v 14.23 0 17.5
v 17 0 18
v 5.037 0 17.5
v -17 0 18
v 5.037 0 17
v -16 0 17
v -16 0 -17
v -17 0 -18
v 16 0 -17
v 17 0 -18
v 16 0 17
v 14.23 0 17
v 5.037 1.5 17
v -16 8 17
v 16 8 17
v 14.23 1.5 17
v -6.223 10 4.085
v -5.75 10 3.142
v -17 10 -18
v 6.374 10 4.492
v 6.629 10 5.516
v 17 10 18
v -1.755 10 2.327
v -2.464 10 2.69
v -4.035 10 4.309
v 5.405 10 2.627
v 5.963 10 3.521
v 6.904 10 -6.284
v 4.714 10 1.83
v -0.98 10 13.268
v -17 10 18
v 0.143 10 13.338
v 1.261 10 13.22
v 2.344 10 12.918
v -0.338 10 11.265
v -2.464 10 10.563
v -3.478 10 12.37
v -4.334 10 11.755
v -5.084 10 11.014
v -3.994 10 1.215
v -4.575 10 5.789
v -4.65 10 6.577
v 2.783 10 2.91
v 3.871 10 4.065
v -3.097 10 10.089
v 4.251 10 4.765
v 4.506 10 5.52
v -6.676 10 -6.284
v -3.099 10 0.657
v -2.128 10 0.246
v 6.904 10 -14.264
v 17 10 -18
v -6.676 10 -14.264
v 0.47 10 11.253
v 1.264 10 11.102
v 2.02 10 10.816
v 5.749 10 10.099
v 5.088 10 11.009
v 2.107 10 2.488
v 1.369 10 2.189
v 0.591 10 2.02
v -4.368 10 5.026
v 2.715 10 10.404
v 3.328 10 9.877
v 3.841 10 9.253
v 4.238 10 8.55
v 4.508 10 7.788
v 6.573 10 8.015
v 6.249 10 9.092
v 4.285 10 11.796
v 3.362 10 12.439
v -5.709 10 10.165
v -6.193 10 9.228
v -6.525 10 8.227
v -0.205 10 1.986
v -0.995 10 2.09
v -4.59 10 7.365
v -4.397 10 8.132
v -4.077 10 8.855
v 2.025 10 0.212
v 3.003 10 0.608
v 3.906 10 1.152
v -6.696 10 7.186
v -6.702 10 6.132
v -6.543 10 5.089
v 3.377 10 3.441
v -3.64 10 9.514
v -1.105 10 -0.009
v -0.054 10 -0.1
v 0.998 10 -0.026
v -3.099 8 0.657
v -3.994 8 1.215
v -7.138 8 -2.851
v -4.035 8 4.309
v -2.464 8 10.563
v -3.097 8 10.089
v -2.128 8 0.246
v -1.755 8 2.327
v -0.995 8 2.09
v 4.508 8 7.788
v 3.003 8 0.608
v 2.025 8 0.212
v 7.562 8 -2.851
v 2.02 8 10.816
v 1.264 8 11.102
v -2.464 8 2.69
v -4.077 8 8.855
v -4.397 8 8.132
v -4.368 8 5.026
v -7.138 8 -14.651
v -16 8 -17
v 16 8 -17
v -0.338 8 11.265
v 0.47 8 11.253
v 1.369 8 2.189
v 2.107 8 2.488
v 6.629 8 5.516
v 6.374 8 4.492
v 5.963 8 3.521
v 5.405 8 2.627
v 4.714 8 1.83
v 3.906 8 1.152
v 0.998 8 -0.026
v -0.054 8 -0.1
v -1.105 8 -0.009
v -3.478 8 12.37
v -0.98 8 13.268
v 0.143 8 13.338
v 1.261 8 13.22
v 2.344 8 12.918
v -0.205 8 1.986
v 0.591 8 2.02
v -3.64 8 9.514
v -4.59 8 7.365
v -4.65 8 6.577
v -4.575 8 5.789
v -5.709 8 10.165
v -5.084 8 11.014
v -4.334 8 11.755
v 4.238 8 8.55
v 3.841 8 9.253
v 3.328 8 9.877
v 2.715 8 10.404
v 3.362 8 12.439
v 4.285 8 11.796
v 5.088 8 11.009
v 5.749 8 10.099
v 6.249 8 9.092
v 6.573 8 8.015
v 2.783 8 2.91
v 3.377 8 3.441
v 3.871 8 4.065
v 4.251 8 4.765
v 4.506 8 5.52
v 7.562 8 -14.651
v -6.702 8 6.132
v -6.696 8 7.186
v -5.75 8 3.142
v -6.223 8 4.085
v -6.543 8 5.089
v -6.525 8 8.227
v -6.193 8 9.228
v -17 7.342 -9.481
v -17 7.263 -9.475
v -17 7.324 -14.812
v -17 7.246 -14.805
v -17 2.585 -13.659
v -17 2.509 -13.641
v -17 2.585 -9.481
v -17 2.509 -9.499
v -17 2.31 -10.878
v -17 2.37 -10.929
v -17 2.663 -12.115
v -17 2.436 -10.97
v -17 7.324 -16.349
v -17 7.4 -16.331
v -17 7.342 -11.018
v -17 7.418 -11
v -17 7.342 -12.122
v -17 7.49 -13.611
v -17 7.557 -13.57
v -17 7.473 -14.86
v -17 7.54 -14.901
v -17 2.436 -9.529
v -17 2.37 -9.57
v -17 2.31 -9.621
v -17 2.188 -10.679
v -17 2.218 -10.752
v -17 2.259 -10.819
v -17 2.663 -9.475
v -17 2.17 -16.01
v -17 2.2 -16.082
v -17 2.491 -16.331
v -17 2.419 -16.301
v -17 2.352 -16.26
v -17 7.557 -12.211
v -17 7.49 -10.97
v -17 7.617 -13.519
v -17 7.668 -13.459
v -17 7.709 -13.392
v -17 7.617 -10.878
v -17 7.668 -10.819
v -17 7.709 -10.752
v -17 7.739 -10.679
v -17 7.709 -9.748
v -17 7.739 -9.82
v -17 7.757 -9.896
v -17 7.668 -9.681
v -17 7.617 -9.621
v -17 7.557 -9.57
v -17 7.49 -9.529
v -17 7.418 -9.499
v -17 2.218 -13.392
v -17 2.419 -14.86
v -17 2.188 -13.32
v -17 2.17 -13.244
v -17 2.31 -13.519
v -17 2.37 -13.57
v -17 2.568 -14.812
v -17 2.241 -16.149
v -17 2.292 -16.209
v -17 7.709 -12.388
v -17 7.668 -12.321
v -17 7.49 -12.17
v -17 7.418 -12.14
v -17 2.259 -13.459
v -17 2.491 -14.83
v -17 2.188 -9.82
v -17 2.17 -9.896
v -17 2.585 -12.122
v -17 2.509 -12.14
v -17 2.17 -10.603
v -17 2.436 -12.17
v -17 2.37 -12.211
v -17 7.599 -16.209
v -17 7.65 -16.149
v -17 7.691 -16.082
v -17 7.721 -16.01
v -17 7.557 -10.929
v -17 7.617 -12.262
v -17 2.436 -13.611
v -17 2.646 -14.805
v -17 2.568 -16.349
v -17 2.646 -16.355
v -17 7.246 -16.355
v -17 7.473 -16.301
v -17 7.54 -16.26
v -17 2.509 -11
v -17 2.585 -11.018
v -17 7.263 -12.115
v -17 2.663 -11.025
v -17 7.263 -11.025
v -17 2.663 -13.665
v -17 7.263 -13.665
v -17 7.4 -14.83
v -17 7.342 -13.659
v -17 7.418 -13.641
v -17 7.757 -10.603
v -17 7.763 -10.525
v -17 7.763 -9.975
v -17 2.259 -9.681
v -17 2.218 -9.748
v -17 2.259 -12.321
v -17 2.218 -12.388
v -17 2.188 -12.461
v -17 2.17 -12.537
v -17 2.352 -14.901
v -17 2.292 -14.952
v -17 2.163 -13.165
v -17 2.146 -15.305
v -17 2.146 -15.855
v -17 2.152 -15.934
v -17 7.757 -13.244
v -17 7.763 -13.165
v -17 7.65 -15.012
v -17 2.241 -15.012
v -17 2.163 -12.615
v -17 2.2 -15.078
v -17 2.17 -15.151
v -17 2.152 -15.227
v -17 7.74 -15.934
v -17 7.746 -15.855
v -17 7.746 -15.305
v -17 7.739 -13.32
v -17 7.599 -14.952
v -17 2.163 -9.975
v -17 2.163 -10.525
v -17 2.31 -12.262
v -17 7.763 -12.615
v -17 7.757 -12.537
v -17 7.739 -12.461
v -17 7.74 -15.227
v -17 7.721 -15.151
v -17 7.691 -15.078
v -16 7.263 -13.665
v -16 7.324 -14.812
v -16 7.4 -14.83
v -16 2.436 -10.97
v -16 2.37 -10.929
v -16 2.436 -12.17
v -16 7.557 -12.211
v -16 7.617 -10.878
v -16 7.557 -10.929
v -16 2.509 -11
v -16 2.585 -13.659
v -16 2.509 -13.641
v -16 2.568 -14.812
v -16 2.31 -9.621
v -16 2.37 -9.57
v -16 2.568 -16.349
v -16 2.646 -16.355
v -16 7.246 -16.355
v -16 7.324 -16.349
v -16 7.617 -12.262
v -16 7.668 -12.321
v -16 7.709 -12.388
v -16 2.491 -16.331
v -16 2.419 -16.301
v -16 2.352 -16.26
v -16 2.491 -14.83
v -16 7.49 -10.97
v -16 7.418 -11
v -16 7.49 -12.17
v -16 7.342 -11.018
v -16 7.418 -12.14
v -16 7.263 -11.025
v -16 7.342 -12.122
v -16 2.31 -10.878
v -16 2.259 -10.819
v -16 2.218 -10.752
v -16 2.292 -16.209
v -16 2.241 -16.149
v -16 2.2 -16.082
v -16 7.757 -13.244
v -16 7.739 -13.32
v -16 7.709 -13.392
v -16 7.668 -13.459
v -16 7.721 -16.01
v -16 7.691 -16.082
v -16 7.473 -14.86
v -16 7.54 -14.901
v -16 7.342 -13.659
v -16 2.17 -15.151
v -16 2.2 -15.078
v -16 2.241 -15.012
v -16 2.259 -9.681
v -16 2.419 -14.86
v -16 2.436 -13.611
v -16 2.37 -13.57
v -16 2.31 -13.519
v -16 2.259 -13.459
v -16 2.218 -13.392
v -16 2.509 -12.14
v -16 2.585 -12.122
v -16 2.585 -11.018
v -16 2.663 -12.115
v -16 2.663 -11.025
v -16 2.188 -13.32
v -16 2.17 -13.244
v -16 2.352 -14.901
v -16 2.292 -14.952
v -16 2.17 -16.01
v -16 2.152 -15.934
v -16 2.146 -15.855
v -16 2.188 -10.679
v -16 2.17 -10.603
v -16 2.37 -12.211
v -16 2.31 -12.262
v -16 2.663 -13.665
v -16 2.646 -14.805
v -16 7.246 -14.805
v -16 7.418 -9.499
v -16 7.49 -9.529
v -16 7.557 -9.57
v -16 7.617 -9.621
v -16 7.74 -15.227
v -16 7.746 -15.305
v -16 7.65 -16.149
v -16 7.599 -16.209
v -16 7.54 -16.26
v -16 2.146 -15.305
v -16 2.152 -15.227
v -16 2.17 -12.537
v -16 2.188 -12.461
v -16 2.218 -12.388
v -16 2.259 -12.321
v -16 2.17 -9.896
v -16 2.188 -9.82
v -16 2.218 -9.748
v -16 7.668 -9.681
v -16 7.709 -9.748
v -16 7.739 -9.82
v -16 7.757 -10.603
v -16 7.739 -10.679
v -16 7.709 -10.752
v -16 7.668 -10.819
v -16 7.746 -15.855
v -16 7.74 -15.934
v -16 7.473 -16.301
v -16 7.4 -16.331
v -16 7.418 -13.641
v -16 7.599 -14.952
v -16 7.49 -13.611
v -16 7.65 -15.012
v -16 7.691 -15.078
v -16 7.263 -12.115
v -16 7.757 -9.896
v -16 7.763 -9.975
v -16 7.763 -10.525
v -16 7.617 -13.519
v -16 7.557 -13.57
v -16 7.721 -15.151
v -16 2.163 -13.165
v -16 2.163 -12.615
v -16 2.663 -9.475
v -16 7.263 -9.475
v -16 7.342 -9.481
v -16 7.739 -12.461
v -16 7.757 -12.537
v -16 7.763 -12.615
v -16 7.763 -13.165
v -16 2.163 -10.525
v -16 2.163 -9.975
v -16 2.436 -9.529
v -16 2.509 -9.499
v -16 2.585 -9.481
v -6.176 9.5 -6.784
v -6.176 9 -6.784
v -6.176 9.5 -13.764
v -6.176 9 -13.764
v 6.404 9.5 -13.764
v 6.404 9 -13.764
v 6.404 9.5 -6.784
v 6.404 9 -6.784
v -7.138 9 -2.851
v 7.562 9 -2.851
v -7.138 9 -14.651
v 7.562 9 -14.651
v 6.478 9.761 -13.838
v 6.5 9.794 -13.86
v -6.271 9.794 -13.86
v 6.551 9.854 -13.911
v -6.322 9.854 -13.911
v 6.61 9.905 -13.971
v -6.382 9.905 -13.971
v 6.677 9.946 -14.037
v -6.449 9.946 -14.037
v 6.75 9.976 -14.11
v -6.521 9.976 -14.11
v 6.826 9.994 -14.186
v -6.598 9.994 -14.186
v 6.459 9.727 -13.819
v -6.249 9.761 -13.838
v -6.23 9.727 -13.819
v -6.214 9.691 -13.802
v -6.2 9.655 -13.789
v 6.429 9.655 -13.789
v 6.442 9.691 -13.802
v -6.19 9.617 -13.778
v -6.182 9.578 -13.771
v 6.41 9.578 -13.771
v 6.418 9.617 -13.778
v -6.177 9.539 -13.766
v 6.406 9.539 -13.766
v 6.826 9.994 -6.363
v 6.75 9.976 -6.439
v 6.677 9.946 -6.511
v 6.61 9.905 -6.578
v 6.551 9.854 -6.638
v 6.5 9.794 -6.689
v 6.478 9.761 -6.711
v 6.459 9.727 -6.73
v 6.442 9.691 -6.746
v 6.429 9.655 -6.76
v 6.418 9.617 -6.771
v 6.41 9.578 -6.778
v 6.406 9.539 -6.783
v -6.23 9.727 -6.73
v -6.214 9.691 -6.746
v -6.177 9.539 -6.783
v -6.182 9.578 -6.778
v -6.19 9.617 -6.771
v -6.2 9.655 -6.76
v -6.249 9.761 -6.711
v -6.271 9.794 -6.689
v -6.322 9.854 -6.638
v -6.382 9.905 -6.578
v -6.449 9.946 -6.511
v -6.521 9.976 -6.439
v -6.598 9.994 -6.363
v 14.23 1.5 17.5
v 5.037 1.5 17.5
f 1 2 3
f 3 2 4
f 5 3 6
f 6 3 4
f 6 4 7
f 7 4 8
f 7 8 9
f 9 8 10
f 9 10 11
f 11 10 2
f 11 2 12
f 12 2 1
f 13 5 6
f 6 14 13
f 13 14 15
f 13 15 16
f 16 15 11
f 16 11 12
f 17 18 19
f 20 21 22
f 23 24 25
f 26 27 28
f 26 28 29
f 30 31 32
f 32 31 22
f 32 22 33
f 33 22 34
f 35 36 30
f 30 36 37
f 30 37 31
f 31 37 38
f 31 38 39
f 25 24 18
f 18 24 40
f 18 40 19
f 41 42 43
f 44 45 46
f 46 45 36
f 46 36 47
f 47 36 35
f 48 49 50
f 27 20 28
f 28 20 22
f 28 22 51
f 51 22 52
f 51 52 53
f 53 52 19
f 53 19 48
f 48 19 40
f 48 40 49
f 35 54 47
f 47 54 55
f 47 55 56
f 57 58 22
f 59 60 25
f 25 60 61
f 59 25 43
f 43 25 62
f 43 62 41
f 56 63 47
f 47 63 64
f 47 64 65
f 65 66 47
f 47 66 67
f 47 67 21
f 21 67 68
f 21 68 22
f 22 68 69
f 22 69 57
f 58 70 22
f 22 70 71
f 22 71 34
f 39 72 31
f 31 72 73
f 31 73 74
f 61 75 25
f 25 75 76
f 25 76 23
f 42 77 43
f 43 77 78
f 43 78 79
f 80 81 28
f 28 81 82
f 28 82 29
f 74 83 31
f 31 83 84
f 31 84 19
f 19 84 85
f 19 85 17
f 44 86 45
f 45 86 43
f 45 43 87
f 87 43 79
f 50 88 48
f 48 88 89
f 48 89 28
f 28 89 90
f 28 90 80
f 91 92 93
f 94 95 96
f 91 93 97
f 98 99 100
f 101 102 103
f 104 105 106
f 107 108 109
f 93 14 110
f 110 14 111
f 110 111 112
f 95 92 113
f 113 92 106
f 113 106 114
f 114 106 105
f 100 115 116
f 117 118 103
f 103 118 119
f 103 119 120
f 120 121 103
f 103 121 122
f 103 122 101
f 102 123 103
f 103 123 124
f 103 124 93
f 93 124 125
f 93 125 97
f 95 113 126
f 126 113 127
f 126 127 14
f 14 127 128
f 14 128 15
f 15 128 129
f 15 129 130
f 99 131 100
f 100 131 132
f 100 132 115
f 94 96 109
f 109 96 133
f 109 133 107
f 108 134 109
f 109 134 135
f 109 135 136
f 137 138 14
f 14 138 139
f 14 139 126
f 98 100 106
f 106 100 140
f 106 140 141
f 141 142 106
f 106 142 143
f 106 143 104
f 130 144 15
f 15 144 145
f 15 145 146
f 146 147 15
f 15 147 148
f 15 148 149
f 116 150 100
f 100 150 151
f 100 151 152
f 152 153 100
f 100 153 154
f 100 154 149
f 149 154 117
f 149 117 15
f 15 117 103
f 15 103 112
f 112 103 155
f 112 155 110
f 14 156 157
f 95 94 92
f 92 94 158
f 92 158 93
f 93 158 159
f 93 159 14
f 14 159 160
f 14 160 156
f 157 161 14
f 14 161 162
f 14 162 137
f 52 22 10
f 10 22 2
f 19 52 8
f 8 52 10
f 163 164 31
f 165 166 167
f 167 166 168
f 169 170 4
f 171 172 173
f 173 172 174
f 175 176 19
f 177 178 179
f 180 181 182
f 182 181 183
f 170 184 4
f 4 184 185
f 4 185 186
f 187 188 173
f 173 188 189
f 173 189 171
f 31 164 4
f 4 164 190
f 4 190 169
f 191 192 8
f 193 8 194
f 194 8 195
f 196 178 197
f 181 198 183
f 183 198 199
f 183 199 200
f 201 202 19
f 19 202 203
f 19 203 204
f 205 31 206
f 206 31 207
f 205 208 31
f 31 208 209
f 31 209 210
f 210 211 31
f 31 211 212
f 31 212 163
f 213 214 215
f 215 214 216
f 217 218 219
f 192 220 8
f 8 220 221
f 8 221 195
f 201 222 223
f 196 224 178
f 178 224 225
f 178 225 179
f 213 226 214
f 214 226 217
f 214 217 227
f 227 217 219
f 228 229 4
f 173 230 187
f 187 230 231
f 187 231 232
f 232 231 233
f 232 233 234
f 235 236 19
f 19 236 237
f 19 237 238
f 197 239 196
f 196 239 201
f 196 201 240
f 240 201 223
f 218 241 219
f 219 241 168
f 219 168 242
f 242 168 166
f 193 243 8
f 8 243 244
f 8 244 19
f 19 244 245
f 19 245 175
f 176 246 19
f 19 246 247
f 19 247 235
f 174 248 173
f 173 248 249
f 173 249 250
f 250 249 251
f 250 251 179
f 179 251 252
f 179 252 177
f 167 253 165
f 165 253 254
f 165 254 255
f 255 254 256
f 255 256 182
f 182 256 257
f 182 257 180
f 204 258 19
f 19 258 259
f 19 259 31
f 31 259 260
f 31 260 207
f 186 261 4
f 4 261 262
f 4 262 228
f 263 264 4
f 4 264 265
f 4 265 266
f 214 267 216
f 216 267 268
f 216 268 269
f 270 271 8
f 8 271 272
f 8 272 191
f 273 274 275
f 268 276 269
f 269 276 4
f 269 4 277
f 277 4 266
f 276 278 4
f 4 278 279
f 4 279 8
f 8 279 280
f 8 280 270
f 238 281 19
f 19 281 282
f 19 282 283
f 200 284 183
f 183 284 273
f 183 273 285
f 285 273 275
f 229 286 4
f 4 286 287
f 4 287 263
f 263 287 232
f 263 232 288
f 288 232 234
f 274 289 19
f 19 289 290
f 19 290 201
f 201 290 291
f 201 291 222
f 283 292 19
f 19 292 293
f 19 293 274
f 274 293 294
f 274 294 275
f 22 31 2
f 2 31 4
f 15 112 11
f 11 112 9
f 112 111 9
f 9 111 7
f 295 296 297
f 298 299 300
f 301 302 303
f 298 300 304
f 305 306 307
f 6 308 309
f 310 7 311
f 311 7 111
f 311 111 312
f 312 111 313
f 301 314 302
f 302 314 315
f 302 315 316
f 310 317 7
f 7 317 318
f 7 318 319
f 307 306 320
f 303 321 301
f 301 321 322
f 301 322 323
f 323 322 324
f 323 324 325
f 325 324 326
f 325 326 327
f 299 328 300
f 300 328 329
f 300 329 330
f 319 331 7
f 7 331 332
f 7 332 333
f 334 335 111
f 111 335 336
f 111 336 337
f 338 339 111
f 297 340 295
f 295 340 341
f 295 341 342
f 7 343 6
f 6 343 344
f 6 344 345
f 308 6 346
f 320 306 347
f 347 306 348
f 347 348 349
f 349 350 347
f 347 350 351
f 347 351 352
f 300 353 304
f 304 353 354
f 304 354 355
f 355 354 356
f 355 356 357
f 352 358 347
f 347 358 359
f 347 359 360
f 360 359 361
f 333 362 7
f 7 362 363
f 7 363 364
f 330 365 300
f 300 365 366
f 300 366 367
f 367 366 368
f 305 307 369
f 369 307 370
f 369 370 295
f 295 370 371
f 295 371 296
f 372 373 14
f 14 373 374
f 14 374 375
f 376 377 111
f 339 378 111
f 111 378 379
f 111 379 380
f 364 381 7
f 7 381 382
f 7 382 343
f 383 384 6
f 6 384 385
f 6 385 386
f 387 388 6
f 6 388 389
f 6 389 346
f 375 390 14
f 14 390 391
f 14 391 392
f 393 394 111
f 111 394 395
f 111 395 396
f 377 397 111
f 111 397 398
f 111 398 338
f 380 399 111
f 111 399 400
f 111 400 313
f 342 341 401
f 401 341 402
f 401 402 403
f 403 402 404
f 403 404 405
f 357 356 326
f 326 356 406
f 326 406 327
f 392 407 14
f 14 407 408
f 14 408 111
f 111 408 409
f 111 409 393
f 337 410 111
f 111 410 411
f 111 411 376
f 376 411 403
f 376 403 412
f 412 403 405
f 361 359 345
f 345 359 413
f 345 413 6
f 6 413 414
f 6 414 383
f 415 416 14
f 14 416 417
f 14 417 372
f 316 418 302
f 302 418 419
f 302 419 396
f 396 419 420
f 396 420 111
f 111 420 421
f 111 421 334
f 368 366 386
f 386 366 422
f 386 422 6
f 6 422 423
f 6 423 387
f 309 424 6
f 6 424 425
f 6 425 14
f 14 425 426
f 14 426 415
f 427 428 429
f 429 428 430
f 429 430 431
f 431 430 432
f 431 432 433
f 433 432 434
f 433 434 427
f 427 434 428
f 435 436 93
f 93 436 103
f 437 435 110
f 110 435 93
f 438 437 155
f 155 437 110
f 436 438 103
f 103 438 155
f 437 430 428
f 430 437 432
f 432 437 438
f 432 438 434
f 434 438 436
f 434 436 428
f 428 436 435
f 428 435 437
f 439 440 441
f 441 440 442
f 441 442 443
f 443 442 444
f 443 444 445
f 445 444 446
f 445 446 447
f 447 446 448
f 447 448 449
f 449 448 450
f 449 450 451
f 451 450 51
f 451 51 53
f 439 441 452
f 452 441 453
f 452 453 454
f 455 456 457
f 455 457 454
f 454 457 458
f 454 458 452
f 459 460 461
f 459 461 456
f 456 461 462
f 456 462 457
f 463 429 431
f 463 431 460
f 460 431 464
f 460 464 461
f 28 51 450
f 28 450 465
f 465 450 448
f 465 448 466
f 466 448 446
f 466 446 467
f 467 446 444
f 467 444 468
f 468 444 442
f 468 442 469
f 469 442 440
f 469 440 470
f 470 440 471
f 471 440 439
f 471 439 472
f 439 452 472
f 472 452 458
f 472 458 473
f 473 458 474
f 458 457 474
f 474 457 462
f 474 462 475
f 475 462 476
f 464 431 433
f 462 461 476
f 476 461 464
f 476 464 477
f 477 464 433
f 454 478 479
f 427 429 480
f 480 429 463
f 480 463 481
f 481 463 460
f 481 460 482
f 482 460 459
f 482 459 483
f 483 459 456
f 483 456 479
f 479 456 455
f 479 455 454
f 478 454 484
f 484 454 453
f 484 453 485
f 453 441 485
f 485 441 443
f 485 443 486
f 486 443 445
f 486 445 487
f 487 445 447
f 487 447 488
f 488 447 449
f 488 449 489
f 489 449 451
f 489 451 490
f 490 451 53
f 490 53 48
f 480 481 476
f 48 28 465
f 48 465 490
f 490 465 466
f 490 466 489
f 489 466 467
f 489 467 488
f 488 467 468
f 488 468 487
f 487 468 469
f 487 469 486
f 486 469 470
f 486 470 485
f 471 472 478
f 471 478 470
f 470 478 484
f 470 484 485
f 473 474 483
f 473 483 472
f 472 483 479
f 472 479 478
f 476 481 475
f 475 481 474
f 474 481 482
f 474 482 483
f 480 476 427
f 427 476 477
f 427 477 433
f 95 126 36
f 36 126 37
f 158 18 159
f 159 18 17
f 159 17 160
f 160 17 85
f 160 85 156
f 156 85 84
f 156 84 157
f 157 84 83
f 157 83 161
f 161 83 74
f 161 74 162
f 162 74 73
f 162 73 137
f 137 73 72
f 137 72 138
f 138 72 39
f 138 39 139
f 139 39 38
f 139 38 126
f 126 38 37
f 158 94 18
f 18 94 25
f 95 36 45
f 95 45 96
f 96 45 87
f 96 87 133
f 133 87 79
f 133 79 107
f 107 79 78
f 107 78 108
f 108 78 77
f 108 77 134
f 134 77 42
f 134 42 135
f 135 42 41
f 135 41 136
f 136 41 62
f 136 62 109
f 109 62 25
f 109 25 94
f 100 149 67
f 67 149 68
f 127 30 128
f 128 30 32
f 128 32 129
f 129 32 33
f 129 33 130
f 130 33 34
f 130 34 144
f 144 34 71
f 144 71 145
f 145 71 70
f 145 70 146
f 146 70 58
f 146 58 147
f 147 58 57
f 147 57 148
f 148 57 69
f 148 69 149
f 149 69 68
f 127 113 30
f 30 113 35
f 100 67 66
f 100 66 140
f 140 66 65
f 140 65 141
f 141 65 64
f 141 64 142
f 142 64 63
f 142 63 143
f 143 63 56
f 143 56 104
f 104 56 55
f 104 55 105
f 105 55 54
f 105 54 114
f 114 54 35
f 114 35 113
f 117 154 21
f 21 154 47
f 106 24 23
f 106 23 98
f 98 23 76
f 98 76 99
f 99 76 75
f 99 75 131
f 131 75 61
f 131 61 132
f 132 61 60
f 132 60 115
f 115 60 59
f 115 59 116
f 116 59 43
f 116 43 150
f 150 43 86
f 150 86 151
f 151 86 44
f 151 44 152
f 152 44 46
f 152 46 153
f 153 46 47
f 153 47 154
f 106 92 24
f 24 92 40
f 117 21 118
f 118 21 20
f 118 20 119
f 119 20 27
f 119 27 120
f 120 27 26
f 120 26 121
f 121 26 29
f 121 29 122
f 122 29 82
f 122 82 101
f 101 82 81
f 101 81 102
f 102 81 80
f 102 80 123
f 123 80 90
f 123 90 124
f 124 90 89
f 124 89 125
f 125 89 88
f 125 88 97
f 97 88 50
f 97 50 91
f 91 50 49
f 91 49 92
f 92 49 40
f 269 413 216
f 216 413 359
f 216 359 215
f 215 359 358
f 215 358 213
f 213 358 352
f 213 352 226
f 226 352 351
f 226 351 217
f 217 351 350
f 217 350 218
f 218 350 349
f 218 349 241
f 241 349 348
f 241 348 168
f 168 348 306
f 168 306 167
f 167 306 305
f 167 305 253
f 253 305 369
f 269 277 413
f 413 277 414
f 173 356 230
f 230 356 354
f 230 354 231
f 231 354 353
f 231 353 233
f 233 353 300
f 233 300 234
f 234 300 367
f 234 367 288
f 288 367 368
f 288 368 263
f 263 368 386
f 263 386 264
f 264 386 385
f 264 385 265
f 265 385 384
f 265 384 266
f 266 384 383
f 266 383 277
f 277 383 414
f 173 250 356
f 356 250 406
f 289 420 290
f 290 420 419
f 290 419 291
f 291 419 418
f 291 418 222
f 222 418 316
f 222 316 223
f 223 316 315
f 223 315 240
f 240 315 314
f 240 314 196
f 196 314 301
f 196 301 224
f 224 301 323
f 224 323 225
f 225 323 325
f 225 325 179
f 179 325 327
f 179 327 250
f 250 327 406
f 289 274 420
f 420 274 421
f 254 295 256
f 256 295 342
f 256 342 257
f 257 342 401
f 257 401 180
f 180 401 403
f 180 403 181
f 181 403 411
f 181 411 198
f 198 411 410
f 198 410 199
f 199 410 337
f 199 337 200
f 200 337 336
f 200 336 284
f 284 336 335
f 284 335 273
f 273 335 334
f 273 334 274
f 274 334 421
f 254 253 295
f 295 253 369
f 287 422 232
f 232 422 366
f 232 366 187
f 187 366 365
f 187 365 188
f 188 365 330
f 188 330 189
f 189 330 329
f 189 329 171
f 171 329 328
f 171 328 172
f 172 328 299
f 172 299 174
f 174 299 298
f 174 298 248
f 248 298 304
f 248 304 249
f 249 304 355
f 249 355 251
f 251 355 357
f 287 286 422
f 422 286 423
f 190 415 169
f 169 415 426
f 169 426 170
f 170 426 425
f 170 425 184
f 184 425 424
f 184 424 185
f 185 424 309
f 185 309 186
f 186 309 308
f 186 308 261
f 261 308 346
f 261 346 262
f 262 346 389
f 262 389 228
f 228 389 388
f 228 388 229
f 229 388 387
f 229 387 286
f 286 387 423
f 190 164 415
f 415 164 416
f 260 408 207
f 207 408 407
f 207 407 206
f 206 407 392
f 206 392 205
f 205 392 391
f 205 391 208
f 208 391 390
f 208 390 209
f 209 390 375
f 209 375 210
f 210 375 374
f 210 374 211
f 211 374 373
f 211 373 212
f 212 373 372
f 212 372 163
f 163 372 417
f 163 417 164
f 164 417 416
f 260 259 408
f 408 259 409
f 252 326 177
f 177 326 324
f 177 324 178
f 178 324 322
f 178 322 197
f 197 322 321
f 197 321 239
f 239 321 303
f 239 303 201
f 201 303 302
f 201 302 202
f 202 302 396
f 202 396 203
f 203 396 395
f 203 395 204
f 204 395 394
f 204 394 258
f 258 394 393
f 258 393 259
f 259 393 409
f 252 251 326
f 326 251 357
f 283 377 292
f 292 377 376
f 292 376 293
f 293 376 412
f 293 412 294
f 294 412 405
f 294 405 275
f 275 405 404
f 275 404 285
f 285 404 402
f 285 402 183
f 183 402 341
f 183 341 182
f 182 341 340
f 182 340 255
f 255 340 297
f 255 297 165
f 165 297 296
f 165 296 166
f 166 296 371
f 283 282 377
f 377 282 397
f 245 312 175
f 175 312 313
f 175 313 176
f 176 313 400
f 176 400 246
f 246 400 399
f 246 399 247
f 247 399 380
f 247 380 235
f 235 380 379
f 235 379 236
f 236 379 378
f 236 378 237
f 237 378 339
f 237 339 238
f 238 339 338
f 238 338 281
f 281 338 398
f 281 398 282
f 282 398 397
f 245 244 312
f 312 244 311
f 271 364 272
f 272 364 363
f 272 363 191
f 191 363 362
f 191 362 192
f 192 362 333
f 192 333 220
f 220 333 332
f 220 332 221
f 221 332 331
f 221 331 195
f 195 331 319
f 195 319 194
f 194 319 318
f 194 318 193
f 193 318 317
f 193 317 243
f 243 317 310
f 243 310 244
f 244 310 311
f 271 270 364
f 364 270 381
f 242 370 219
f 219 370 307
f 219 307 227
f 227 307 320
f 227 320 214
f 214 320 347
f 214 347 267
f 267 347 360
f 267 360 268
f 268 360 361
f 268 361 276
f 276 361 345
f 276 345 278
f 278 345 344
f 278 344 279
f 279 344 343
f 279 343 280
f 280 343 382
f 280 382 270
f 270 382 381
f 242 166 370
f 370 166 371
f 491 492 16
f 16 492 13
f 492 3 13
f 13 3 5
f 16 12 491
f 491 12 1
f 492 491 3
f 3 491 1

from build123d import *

# Parameters (mm, degrees)
SKETCH_1_W                 = 34
SKETCH_1_H                 = 36
EXTRUDE_1_DEPTH            = 10
SHELL_1_T                  = -1
SHELL_1_THICKNESS_2_FACE_W = 34
SHELL_1_THICKNESS_2_FACE_H = 32
SHELL_1_THICKNESS_2_DEPTH  = 1
CUT_EXTRUDE_START          = 8
SKETCH_2_W                 = 12.58
SKETCH_2_H                 = 6.98
CUT_EXTRUDE_1_DEPTH        = 5.0005
SKETCH_6_W                 = 14.7
SKETCH_6_H                 = 11.8
CUT_EXTRUDE_2_DEPTH        = 1
FILLET_2_R                 = 0.5
CUT_EXTRUDE_START_2        = 10
CUT_EXTRUDE_3_DEPTH        = 2
CUT_EXTRUDE_START_3        = -16
CUT_EXTRUDE_4_DEPTH        = 1
CUT_EXTRUDE_START_4        = 17
SKETCH_13_W                = 9.193413451
SKETCH_13_H                = 1.5
CUT_EXTRUDE_5_DEPTH        = 0.5


with BuildPart() as part:
    # 草图1 → 凸台-拉伸1 (new body)
    with BuildSketch(Plane(origin=(0, 0, 0), x_dir=(1, 0, 0), z_dir=(0, 1, 0))):
        Rectangle(SKETCH_1_W, SKETCH_1_H)
    extrude(amount=EXTRUDE_1_DEPTH)

    # 抽壳1
    shell_1_openings = [part.faces().sort_by_distance(p)[0] for p in [
        (0, 0, 0),
    ]]
    offset(amount=SHELL_1_T, openings=shell_1_openings, kind=Kind.INTERSECTION)

    # 抽壳1 thickness 2 face (on inner face of the shell) → 抽壳1 thickness 2 (add)
    with BuildSketch(Plane.ZX.offset(9)):
        Rectangle(SHELL_1_THICKNESS_2_FACE_W, SHELL_1_THICKNESS_2_FACE_H)
    extrude(amount=-SHELL_1_THICKNESS_2_DEPTH)

    # 草图2 → 切除-拉伸1 (cut, symmetric)
    with BuildSketch(Plane(origin=(0, 0, 0), x_dir=(1, 0, 0), z_dir=(0, 1, 0)).offset(CUT_EXTRUDE_START)):
        with Locations((0.114253814, 10.274424553)):
            Rectangle(SKETCH_2_W, SKETCH_2_H)
    extrude(amount=CUT_EXTRUDE_1_DEPTH, both=True, mode=Mode.SUBTRACT)

    # 草图6 → 切除-拉伸2 (cut, symmetric)
    with BuildSketch(Plane(origin=(0, 0, 0), x_dir=(1, 0, 0), z_dir=(0, 1, 0)).offset(CUT_EXTRUDE_START)):
        with Locations((0.212081247, 8.751285152)):
            Rectangle(SKETCH_6_W, SKETCH_6_H)
    extrude(amount=CUT_EXTRUDE_2_DEPTH, both=True, mode=Mode.SUBTRACT)

    # 圆角2
    fillet_2_edges = [part.edges().sort_by_distance(p)[0] for p in [
        (6.404253814, 10, -10.274424553),
        (0.114253814, 10, -6.784424553),
        (-6.175746186, 10, -10.274424553),
        (0.114253814, 10, -13.764424553),
    ]]
    fillet(fillet_2_edges, radius=FILLET_2_R)

    # 草图10 → 切除-拉伸3 (cut)
    with BuildSketch(Plane(origin=(0, 0, 0), x_dir=(1, 0, 0), z_dir=(0, 1, 0)).offset(CUT_EXTRUDE_START_2)):
        with BuildLine():
            Line((-3.993743906, -1.215281594), (-2.463768403, -2.690446502))
            ThreePointArc((-2.463768403, -2.690446502), (1.744606129, -2.322550765), (4.505547025, -5.519888538))
            Line((4.505547025, -5.519888538), (6.628721392, -5.515926654))
            ThreePointArc((6.628721392, -5.515926654), (2.52183734, -0.390898934), (-3.993743906, -1.215281594))
        make_face()
        with BuildLine():
            Line((-5.750245846, -3.142252551), (-4.035268841, -4.309111683))
            ThreePointArc((-4.035268841, -4.309111683), (-4.509884123, -7.752654512), (-2.464252289, -10.56310595))
            Line((-2.464252289, -10.56310595), (-3.477509556, -12.370007953))
            ThreePointArc((-3.477509556, -12.370007953), (-6.52500842, -8.22682935), (-5.750245846, -3.142252551))
        make_face()
        with BuildLine():
            Line((-0.33755867, -11.264535632), (-0.979652593, -13.267970949))
            ThreePointArc((-0.979652593, -13.267970949), (3.836702752, -12.136836694), (6.57348953, -8.015339194))
            Line((6.57348953, -8.015339194), (4.50812982, -7.787936955))
            ThreePointArc((4.50812982, -7.787936955), (2.714792905, -10.403644562), (-0.33755867, -11.264535632))
        make_face()
    extrude(amount=-CUT_EXTRUDE_3_DEPTH, mode=Mode.SUBTRACT)

    # 草图11 → 切除-拉伸4 (cut)
    with BuildSketch(Plane(origin=(0, 0, 0), x_dir=(0, 0, -1), z_dir=(1, 0, 0)).offset(CUT_EXTRUDE_START_3)):
        with BuildLine():
            Line((13.165354419, 7.763482474), (12.615354419, 7.763482474))
            ThreePointArc((12.615354419, 7.763482474), (12.261801028, 7.617035865), (12.115354419, 7.263482474))
            Line((12.115354419, 7.263482474), (12.115354419, 2.663482474))
            ThreePointArc((12.115354419, 2.663482474), (12.261801028, 2.309929083), (12.615354419, 2.163482474))
            Line((12.615354419, 2.163482474), (13.165354419, 2.163482474))
            ThreePointArc((13.165354419, 2.163482474), (13.518907809, 2.309929083), (13.665354419, 2.663482474))
            Line((13.665354419, 2.663482474), (13.665354419, 7.263482474))
            ThreePointArc((13.665354419, 7.263482474), (13.518907809, 7.617035865), (13.165354419, 7.763482474))
        make_face()
        with BuildLine():
            Line((15.855458394, 7.745816392), (15.305458394, 7.745816392))
            ThreePointArc((15.305458394, 7.745816392), (14.951905004, 7.599369782), (14.805458394, 7.245816392))
            Line((14.805458394, 7.245816392), (14.805458394, 2.645816392))
            ThreePointArc((14.805458394, 2.645816392), (14.951905004, 2.292263001), (15.305458394, 2.145816392))
            Line((15.305458394, 2.145816392), (15.855458394, 2.145816392))
            ThreePointArc((15.855458394, 2.145816392), (16.209011785, 2.292263001), (16.355458394, 2.645816392))
            Line((16.355458394, 2.645816392), (16.355458394, 7.245816392))
            ThreePointArc((16.355458394, 7.245816392), (16.209011785, 7.599369782), (15.855458394, 7.745816392))
        make_face()
        with BuildLine():
            Line((10.524610149, 7.763448499), (9.974610149, 7.763448499))
            ThreePointArc((9.974610149, 7.763448499), (9.621056758, 7.617001889), (9.474610149, 7.263448499))
            Line((9.474610149, 7.263448499), (9.474610149, 2.663448499))
            ThreePointArc((9.474610149, 2.663448499), (9.621056758, 2.309895108), (9.974610149, 2.163448499))
            Line((9.974610149, 2.163448499), (10.524610149, 2.163448499))
            ThreePointArc((10.524610149, 2.163448499), (10.878163539, 2.309895108), (11.024610149, 2.663448499))
            Line((11.024610149, 2.663448499), (11.024610149, 7.263448499))
            ThreePointArc((11.024610149, 7.263448499), (10.878163539, 7.617001889), (10.524610149, 7.763448499))
        make_face()
    extrude(amount=-CUT_EXTRUDE_4_DEPTH, mode=Mode.SUBTRACT)

    # 草图13 → 切除-拉伸5 (cut)
    with BuildSketch(Plane.XY.offset(CUT_EXTRUDE_START_4)):
        with Locations((9.633284571, 0.749986932)):
            Rectangle(SKETCH_13_W, SKETCH_13_H)
    extrude(amount=CUT_EXTRUDE_5_DEPTH, mode=Mode.SUBTRACT)


solid = part.part
